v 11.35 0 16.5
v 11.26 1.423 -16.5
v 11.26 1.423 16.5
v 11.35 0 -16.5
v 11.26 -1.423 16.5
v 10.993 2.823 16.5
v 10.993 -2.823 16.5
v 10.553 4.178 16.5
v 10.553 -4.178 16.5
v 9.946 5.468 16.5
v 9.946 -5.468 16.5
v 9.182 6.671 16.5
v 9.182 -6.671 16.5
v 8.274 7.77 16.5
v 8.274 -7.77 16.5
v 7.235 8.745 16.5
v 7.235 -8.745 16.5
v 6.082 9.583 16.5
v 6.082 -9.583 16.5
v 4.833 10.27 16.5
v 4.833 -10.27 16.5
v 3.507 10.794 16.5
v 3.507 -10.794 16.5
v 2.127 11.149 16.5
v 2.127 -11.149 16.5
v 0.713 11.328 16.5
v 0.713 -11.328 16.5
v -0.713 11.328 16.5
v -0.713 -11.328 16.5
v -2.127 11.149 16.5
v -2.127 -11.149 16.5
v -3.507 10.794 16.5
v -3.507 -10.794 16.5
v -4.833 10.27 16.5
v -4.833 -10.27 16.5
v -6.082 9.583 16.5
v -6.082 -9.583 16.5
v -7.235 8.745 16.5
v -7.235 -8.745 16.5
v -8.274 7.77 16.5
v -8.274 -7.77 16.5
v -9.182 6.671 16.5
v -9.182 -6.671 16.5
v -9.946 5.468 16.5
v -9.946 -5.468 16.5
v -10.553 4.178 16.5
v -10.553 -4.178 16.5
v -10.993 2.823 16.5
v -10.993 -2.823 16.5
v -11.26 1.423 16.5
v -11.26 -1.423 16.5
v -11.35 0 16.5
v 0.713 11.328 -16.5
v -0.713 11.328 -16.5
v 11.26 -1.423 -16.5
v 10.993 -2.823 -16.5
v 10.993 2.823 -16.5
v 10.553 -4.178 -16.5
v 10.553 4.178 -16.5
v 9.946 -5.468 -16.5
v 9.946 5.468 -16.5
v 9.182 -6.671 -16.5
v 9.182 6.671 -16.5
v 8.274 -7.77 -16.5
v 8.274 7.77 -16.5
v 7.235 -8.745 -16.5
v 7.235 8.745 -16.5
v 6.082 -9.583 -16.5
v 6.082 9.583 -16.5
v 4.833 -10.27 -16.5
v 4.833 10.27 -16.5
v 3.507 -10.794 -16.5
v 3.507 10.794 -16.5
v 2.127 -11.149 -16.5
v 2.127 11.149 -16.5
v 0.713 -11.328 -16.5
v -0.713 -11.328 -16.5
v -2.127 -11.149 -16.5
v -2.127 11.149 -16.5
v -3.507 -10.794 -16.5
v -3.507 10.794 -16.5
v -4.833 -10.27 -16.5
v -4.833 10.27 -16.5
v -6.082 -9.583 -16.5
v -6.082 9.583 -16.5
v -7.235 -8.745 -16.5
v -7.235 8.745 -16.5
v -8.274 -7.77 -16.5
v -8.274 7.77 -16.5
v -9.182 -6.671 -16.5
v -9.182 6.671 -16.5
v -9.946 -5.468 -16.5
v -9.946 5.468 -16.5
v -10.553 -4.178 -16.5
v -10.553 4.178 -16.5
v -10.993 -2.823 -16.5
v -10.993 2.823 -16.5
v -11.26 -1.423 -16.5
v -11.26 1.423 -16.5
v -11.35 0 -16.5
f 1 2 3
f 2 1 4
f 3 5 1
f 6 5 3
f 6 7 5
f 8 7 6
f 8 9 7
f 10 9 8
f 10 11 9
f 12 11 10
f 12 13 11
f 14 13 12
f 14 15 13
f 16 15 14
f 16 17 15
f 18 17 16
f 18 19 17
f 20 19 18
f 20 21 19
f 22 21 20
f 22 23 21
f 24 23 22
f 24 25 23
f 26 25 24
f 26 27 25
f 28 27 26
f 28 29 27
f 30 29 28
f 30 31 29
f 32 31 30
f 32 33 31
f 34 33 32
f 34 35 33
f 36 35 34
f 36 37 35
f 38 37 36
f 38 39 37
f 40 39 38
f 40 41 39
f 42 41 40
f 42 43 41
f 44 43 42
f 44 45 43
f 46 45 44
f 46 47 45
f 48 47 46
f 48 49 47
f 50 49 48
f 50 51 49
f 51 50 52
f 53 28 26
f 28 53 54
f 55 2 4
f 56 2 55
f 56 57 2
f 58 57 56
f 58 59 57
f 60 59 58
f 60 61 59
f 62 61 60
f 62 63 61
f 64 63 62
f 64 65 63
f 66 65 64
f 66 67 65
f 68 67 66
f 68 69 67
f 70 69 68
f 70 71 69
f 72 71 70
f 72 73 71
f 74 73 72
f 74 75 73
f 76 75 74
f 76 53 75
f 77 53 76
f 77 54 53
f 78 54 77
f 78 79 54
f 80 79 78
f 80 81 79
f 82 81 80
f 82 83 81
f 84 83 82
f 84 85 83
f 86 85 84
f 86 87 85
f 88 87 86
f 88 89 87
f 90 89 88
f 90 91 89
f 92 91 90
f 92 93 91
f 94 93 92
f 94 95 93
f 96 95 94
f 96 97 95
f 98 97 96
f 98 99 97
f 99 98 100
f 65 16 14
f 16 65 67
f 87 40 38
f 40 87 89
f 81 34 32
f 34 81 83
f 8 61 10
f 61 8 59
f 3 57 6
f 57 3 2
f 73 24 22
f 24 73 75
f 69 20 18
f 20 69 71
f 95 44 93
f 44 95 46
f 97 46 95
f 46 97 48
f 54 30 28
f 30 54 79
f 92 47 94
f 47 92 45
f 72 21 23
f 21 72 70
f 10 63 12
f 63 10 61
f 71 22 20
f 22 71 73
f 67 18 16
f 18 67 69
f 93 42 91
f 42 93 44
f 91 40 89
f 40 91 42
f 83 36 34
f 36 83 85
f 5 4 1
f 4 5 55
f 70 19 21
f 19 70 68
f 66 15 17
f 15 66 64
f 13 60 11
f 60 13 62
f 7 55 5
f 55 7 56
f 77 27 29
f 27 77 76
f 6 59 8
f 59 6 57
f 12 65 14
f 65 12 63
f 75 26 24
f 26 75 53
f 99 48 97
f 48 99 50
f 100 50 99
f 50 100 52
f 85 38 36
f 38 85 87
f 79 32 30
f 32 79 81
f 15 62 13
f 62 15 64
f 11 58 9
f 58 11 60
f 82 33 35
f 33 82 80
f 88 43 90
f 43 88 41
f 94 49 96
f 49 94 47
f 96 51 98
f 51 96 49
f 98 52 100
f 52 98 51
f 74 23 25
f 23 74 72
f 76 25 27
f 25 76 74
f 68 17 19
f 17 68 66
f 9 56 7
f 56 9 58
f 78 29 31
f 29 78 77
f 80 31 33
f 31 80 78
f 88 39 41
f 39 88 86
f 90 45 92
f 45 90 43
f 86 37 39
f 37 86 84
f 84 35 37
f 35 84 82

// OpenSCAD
$fn = 50;


difference() {
	union() {
		translate(v = [0, 0, -16.5000000000]) {
			cylinder(h = 33, r = 11.3500000000);
		}
	}
	union() {
		translate(v = [0, 0, -100.0000000000]) {
			cylinder(h = 200, r = 0);
		}
	}
}
